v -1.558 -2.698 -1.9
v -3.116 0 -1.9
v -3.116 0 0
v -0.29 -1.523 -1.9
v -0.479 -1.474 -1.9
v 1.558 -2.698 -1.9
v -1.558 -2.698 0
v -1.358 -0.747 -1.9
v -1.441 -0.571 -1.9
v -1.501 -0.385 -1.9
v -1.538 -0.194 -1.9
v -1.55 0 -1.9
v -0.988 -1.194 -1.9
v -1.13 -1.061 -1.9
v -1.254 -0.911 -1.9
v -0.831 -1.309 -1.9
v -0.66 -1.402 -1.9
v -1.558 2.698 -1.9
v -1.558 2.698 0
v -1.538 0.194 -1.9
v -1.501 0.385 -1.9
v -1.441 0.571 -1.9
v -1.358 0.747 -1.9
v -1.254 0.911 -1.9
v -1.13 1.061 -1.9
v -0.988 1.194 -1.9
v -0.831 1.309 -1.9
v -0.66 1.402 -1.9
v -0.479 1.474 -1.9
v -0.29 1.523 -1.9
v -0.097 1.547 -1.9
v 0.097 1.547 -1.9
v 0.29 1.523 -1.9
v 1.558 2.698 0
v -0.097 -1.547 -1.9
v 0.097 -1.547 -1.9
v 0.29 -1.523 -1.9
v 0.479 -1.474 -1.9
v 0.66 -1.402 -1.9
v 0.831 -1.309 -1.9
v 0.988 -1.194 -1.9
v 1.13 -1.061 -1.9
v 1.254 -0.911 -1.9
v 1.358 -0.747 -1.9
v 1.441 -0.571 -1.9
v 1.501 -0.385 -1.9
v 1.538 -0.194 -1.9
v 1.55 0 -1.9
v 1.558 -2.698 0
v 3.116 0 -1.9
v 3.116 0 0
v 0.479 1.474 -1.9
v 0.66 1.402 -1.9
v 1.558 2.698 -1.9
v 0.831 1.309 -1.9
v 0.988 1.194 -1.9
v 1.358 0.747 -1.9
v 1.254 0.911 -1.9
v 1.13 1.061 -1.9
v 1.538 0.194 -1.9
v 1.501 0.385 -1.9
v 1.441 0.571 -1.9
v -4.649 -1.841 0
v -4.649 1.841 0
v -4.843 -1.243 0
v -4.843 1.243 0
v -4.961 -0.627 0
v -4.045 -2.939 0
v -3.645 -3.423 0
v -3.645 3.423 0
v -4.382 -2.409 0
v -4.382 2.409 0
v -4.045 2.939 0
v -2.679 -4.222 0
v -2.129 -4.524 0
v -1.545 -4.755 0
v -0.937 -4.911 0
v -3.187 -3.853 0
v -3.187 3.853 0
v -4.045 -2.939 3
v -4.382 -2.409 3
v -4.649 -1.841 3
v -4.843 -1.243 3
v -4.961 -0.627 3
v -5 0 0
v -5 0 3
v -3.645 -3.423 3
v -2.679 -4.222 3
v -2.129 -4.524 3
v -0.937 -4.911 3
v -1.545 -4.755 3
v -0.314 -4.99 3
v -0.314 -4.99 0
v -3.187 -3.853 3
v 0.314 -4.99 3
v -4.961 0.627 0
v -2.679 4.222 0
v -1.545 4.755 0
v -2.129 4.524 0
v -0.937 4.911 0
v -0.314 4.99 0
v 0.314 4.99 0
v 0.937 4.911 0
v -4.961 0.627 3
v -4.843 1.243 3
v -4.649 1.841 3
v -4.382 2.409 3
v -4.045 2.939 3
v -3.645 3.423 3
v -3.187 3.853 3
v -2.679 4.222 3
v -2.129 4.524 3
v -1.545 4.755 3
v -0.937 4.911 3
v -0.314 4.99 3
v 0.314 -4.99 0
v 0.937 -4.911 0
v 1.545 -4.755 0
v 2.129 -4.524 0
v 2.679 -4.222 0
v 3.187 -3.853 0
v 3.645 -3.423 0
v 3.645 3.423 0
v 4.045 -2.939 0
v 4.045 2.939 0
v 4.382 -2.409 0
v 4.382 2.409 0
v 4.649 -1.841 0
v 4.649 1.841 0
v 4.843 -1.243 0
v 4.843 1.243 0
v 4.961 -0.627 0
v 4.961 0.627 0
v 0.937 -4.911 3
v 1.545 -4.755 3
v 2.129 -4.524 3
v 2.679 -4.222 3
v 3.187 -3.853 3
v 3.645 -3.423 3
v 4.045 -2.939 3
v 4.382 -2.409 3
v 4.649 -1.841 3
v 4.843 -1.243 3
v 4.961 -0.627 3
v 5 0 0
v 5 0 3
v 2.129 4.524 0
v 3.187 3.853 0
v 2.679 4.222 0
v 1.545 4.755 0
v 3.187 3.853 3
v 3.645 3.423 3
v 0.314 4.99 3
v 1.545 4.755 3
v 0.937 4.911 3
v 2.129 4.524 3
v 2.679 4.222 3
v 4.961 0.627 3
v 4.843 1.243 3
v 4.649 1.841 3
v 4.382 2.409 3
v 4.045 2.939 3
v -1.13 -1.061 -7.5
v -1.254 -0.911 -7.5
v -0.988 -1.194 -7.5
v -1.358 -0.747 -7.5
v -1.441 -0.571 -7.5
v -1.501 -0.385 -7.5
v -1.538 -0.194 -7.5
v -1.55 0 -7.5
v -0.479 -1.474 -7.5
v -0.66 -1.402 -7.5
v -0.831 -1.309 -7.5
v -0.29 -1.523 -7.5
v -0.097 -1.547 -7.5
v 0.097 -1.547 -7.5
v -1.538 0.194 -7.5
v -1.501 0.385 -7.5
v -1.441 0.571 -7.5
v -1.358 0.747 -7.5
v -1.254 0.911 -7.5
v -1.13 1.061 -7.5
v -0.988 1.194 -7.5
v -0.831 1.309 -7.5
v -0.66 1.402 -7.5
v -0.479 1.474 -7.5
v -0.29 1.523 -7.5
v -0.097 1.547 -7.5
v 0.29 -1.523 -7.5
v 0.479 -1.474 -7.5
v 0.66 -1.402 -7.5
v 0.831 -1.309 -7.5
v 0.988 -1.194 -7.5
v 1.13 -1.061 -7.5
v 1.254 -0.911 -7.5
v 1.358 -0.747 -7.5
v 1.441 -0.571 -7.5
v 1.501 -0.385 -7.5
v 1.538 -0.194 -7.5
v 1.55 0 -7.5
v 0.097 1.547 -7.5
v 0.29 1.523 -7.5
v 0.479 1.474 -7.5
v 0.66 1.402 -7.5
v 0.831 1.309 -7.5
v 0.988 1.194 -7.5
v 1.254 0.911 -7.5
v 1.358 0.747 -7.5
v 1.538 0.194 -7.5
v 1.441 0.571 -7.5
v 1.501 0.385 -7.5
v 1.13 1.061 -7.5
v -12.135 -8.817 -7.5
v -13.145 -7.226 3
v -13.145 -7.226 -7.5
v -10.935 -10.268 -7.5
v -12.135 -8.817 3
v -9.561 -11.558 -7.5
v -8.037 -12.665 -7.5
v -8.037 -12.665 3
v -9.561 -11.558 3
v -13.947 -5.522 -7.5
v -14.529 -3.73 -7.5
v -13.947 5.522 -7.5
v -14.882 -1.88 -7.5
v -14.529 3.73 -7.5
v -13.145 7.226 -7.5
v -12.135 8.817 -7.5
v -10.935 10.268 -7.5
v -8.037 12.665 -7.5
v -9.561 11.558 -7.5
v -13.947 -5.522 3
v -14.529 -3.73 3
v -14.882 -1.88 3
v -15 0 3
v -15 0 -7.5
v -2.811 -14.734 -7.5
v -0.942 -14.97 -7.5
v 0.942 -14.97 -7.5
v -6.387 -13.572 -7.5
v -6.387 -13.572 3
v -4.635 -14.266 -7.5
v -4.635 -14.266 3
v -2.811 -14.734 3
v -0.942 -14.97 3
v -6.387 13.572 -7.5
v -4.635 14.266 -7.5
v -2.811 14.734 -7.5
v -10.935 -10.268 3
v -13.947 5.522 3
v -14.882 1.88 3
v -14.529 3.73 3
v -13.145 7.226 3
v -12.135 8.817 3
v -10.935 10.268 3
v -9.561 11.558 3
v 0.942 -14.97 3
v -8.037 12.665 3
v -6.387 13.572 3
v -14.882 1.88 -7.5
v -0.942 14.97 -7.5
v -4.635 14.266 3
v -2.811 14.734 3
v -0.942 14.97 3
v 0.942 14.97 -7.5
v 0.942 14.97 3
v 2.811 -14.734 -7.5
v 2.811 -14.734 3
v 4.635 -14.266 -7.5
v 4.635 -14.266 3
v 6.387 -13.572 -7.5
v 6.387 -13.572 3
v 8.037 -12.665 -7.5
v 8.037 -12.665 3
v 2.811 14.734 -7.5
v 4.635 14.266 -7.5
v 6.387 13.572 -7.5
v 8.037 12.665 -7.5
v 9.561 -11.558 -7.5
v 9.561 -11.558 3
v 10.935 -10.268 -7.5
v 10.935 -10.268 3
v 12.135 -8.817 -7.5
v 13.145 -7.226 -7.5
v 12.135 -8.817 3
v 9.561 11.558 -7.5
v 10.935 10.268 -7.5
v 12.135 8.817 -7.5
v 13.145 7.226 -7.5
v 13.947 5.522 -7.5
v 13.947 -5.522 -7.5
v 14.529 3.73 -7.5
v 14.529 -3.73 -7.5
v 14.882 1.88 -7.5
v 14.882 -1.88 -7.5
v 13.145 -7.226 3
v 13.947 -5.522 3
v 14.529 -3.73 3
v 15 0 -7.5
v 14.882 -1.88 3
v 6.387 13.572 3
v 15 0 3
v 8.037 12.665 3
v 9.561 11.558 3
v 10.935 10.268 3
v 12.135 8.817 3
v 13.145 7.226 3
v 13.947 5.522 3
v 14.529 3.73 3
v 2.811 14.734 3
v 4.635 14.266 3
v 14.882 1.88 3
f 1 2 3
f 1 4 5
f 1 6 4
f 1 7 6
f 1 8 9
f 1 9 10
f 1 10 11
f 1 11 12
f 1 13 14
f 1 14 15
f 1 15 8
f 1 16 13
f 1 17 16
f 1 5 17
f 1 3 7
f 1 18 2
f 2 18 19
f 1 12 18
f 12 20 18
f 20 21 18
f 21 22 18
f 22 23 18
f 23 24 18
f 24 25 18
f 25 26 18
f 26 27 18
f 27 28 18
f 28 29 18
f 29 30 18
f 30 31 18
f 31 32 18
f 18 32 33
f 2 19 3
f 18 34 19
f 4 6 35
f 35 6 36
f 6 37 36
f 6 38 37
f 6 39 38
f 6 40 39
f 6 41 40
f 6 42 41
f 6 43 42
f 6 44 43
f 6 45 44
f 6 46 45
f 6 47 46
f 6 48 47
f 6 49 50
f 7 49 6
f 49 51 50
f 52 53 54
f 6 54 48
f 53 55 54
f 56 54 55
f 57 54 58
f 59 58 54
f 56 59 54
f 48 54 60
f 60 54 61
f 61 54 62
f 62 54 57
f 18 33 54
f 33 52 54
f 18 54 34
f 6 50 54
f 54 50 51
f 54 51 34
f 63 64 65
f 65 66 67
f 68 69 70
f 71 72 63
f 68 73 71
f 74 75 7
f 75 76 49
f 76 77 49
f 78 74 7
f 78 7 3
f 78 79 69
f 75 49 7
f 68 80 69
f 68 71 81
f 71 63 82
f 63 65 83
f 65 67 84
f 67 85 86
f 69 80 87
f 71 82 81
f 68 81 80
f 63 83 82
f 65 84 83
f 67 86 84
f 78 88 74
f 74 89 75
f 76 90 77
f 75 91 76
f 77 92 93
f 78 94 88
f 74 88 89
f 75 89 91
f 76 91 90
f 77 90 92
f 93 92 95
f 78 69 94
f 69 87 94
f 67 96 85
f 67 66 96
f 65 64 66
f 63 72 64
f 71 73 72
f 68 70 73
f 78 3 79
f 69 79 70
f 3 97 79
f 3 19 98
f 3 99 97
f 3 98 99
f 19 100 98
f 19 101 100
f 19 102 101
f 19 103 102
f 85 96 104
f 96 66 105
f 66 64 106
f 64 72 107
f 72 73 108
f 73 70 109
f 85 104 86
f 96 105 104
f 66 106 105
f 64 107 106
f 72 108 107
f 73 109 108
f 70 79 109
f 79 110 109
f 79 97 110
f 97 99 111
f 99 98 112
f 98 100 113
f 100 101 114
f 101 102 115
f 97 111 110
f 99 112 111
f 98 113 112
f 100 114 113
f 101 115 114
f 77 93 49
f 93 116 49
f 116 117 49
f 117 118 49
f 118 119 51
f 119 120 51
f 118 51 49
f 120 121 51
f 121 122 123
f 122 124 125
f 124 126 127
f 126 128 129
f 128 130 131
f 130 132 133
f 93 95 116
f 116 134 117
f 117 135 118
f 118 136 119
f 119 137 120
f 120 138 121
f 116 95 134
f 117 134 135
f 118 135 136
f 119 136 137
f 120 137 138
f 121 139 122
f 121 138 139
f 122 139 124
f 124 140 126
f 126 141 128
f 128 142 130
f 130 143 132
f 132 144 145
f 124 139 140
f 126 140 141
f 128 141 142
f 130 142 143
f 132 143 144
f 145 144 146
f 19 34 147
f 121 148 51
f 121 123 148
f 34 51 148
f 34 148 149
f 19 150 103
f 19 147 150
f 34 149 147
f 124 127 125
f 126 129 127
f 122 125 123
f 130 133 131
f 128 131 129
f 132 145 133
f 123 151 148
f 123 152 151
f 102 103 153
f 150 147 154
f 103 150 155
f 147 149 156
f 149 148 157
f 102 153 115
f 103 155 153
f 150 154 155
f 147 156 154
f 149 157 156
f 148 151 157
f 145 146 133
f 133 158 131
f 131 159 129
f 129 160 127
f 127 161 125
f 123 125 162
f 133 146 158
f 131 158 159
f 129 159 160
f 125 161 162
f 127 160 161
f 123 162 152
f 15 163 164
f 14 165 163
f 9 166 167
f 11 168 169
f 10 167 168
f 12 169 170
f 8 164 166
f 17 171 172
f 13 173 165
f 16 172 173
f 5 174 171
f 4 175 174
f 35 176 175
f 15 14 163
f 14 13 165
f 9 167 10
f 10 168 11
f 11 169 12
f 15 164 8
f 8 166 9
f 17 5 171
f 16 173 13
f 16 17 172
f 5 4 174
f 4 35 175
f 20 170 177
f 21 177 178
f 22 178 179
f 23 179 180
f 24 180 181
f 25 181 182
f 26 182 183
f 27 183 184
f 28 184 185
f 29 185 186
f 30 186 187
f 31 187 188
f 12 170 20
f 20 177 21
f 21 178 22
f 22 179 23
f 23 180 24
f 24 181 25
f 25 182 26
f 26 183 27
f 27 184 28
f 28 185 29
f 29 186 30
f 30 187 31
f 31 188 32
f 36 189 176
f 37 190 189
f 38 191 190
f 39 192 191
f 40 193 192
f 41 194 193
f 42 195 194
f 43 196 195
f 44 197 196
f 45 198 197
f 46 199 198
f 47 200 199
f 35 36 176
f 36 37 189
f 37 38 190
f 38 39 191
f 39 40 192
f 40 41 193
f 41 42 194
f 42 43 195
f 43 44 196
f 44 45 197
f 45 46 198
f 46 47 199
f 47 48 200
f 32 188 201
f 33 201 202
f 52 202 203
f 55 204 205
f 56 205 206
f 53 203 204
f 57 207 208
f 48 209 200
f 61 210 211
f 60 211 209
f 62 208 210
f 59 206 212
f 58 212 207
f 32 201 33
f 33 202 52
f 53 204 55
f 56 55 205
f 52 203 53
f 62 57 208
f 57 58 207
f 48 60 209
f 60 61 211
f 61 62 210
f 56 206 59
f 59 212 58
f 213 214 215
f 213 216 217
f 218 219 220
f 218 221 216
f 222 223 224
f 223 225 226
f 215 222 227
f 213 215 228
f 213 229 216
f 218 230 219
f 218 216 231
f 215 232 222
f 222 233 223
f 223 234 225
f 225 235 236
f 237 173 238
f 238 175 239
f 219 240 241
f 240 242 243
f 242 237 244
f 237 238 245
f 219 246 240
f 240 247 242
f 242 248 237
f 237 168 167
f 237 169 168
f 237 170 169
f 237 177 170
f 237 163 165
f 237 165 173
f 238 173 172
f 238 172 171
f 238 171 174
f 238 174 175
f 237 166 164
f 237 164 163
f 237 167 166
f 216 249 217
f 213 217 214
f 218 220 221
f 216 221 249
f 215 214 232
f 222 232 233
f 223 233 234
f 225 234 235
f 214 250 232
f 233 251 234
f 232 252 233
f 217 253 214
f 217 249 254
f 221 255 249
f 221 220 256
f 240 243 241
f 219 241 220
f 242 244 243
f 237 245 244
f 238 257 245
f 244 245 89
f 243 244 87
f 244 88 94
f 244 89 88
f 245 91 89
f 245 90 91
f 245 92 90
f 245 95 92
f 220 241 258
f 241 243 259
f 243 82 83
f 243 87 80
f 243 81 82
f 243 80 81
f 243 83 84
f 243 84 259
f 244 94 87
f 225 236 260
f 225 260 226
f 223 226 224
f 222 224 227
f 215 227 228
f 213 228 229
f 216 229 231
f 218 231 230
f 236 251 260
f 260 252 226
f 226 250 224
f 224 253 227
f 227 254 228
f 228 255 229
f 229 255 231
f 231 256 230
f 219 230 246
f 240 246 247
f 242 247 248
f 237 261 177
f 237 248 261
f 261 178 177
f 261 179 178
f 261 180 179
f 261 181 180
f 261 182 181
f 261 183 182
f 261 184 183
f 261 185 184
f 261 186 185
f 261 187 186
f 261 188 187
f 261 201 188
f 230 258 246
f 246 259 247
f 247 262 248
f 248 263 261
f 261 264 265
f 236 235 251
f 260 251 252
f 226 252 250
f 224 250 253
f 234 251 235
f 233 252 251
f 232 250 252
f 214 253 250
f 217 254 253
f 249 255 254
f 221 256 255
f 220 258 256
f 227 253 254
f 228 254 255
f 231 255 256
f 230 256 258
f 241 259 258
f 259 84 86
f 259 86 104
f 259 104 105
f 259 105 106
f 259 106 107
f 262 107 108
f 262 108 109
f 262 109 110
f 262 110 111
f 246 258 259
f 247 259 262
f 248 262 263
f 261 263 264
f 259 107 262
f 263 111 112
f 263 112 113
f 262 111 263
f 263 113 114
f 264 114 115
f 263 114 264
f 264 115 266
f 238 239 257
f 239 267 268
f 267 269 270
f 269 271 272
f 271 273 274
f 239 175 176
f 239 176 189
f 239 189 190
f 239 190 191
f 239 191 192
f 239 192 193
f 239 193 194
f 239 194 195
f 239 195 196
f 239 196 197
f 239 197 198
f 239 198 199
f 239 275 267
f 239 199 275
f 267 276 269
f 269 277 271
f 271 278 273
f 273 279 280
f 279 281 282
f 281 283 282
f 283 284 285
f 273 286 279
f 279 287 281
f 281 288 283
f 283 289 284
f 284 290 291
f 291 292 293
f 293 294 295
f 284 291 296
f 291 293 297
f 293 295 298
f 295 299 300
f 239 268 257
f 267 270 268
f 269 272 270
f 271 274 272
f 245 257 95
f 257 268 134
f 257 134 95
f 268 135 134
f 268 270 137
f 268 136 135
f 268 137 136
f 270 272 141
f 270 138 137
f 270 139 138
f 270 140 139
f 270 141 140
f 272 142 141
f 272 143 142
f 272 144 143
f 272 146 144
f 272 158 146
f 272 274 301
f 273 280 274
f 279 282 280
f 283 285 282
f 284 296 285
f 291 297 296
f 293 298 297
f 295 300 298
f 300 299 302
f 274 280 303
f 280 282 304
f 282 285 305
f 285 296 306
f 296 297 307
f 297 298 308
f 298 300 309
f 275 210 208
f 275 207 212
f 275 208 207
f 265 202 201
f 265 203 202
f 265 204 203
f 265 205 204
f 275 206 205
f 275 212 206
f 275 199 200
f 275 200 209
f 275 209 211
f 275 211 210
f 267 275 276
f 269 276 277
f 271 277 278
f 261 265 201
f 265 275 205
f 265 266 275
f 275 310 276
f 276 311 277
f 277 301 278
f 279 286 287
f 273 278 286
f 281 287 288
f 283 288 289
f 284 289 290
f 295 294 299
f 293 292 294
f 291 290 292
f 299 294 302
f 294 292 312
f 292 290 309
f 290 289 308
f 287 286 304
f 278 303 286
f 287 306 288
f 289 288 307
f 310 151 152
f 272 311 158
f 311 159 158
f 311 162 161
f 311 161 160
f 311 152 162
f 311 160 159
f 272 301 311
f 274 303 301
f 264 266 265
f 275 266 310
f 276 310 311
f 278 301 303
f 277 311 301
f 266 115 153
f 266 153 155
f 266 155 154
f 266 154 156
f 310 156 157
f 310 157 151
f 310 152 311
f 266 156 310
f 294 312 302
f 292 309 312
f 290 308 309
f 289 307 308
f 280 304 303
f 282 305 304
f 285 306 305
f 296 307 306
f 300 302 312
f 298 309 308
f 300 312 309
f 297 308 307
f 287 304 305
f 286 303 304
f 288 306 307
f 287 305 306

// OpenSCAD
$fn = 50;

difference() {
	union() {
		translate(v = [0, 0, -7.5]) {
			cylinder(h = 10.5, r = 15.0);
		}
	}
	union() {
		translate(v = [0, 0, 0]) {
			rotate(a = [0, 0, 0]) {
				difference() {
					union() {
						translate(v = [0, 0, -1.9]) {
							linear_extrude(height = 1.9) {
								polygon(points = [[3.1158, 0.0], [1.5579000000000005, 2.698361953111554], [-1.5578999999999994, 2.6983619531115544], [-3.1158, 3.815754496783323e-16], [-1.5579000000000014, -2.6983619531115535], [1.557899999999998, -2.6983619531115552]]);
							}
						}
					}
					union();
				}
			}
		}
		#cylinder(h = 3, r = 5.0);
		#translate(v = [0, 0, -100.0]) {
			cylinder(h = 200, r = 1.55);
		}
	}
}
